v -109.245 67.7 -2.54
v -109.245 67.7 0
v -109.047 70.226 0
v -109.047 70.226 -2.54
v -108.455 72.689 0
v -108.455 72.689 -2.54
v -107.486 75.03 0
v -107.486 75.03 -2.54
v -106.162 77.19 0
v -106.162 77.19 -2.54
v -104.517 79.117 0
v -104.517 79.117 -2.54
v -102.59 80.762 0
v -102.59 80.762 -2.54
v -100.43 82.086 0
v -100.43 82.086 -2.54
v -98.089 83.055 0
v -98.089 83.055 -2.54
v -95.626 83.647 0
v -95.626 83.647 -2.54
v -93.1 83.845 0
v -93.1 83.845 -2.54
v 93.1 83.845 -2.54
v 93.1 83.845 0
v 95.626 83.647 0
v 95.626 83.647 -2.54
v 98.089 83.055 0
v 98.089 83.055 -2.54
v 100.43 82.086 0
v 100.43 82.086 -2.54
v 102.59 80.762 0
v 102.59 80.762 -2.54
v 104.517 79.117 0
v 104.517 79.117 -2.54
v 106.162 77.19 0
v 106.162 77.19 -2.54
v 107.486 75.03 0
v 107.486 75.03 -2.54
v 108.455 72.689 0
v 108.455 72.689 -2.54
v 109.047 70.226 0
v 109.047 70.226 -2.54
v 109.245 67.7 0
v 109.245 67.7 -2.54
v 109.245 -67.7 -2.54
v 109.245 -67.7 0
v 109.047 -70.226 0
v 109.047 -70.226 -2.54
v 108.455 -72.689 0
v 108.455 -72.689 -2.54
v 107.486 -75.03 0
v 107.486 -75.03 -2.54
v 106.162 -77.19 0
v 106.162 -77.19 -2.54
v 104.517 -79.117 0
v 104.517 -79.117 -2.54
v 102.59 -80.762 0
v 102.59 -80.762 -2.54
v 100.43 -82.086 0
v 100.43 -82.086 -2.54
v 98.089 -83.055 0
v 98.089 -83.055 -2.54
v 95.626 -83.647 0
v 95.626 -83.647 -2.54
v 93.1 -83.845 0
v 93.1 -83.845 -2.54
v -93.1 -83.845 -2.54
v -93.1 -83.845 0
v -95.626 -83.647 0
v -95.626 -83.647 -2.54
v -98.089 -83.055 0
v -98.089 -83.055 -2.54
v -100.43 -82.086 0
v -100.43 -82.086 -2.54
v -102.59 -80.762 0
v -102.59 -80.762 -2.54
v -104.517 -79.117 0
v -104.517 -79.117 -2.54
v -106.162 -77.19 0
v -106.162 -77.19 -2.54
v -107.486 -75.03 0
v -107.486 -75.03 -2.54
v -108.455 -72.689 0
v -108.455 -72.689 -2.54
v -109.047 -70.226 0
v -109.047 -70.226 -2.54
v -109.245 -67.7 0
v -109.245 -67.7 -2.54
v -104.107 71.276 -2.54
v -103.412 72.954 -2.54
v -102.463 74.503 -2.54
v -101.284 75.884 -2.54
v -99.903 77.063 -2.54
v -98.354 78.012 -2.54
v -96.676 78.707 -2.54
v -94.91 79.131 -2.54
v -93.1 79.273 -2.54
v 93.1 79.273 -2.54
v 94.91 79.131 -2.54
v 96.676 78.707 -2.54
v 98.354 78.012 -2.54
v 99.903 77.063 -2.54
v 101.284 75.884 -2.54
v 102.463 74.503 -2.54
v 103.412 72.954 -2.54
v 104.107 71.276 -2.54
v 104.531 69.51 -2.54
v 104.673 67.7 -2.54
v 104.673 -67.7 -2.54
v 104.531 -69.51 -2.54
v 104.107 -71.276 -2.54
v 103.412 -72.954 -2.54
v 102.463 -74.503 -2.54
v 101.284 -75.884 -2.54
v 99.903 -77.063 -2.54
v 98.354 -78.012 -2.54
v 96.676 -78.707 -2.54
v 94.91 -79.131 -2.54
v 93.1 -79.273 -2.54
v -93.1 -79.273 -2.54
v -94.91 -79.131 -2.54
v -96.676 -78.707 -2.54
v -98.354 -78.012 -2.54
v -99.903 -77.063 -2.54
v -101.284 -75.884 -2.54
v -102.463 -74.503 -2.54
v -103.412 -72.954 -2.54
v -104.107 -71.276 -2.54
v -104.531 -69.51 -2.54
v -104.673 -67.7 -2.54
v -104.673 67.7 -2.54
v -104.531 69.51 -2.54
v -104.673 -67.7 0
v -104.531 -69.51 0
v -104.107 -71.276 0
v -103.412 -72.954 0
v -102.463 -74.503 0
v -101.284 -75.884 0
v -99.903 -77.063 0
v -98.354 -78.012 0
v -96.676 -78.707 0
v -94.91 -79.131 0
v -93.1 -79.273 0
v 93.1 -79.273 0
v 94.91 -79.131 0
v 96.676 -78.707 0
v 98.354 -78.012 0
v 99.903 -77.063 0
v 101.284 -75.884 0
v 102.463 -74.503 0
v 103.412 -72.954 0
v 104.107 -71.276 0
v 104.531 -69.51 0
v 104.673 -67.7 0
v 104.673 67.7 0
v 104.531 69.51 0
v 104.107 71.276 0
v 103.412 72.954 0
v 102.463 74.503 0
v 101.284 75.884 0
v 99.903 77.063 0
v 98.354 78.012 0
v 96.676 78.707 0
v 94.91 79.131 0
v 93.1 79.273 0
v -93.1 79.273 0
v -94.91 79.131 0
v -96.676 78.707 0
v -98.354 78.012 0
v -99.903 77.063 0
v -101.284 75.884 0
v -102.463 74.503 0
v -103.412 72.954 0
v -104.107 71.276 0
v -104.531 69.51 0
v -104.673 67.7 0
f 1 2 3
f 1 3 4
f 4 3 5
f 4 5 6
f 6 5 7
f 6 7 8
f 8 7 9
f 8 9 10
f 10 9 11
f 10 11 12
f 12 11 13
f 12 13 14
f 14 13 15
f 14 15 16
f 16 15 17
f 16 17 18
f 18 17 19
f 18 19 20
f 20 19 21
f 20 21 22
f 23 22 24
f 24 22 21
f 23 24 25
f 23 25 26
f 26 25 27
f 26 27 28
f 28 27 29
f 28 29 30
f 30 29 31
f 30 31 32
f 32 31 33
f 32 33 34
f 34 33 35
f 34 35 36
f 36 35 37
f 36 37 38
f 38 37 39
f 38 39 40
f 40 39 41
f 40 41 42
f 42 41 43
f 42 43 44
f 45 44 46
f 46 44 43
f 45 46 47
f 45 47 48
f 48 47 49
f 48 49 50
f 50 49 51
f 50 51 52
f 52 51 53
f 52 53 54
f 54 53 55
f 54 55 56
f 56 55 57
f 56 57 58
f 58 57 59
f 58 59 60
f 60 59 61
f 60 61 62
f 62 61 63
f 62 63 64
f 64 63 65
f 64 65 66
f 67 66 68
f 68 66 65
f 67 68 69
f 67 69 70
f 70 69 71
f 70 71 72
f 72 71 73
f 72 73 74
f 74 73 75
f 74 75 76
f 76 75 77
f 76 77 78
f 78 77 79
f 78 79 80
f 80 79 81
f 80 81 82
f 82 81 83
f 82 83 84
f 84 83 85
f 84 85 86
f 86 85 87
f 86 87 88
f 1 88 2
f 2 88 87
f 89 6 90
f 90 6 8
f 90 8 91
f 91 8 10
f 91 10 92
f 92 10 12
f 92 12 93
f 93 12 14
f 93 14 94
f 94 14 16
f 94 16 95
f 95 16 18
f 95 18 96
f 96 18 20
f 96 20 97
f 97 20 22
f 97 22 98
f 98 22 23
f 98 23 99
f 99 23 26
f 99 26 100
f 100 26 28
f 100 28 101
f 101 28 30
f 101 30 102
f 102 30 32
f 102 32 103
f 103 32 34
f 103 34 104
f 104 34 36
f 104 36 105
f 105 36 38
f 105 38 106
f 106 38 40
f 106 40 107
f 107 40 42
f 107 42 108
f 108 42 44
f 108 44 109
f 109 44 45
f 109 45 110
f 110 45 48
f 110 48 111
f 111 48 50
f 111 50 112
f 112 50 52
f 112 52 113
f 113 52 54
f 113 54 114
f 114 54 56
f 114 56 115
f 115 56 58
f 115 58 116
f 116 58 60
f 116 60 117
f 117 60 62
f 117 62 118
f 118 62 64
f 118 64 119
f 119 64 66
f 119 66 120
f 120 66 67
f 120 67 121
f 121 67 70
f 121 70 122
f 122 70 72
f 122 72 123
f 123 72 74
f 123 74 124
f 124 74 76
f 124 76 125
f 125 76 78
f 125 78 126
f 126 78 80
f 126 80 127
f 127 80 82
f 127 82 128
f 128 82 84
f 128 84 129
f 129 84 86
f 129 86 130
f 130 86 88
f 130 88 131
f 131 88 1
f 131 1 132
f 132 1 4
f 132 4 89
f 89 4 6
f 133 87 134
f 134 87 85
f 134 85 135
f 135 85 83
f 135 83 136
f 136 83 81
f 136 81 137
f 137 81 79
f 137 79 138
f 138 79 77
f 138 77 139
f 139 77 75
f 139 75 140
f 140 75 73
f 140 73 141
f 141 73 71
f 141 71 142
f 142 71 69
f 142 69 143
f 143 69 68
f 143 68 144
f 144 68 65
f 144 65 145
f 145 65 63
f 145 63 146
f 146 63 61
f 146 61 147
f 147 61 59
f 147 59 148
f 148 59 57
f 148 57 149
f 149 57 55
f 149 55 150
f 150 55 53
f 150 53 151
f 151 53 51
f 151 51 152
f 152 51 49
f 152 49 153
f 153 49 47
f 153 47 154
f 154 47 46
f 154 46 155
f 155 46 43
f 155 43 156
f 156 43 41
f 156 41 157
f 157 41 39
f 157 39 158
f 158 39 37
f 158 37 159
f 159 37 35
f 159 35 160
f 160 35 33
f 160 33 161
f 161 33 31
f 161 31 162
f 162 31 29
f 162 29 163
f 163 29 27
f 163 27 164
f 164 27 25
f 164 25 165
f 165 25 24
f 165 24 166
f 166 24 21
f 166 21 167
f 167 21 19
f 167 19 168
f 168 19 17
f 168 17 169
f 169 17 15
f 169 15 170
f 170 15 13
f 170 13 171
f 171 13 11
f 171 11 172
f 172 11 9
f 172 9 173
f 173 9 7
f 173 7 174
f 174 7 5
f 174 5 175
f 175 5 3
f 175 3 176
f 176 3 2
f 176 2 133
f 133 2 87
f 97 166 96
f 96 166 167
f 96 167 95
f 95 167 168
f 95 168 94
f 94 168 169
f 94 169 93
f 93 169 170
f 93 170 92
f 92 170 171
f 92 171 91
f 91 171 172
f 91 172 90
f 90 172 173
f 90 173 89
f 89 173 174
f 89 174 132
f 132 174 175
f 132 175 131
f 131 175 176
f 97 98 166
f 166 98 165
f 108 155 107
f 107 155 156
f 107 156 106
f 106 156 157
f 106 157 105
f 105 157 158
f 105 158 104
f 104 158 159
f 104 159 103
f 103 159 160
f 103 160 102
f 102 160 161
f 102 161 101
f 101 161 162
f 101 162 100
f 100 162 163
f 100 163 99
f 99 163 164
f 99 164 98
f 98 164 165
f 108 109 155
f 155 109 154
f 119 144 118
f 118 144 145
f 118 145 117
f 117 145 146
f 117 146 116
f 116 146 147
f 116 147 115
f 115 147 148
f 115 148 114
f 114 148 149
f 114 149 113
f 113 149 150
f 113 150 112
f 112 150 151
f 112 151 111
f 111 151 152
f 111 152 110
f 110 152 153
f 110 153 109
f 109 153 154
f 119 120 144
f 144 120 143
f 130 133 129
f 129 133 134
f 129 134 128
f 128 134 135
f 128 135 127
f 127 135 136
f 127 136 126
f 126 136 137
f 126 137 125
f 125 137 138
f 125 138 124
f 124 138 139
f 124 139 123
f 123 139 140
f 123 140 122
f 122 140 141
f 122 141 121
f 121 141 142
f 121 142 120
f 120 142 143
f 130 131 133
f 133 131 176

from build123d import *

# Parameters (mm, degrees)
BOSS_EXTRUDE1_DEPTH = 2.54


with BuildPart() as part:
    # Sketch1 → Boss-Extrude1 (new body)
    with BuildSketch(Plane.XY):
        with BuildLine():
            Line((-109.2454, -66.7), (-109.2454, 67.7))
            ThreePointArc((-109.2454, 67.7), (-104.516521825, 79.116521825), (-93.1, 83.8454))
            Line((-93.1, 83.8454), (92.1, 83.8454))
            Line((92.1, 83.8454), (93.1, 83.8454))
            ThreePointArc((93.1, 83.8454), (104.516521825, 79.116521825), (109.2454, 67.7))
            Line((109.2454, 67.7), (109.2454, -66.7))
            Line((109.2454, -66.7), (109.2454, -67.7))
            ThreePointArc((109.2454, -67.7), (104.516521825, -79.116521825), (93.1, -83.8454))
            Line((93.1, -83.8454), (-92.1, -83.8454))
            Line((-92.1, -83.8454), (-93.1, -83.8454))
            ThreePointArc((-93.1, -83.8454), (-104.516521825, -79.116521825), (-109.2454, -67.7))
            Line((-109.2454, -67.7), (-109.2454, -66.7))
        make_face()
        with BuildLine():
            Line((-104.6734, -66.7), (-104.6734, 67.7))
            ThreePointArc((-104.6734, 67.7), (-101.283629621, 75.883629621), (-93.1, 79.2734))
            Line((-93.1, 79.2734), (92.1, 79.2734))
            Line((92.1, 79.2734), (93.1, 79.2734))
            ThreePointArc((93.1, 79.2734), (101.283629621, 75.883629621), (104.6734, 67.7))
            Line((104.6734, 67.7), (104.6734, -66.7))
            Line((104.6734, -66.7), (104.6734, -67.7))
            ThreePointArc((104.6734, -67.7), (101.283629621, -75.883629621), (93.1, -79.2734))
            Line((93.1, -79.2734), (-92.1, -79.2734))
            Line((-92.1, -79.2734), (-93.1, -79.2734))
            ThreePointArc((-93.1, -79.2734), (-101.283629621, -75.883629621), (-104.6734, -67.7))
            Line((-104.6734, -67.7), (-104.6734, -66.7))
        make_face(mode=Mode.SUBTRACT)
    extrude(amount=-BOSS_EXTRUDE1_DEPTH)


solid = part.part
